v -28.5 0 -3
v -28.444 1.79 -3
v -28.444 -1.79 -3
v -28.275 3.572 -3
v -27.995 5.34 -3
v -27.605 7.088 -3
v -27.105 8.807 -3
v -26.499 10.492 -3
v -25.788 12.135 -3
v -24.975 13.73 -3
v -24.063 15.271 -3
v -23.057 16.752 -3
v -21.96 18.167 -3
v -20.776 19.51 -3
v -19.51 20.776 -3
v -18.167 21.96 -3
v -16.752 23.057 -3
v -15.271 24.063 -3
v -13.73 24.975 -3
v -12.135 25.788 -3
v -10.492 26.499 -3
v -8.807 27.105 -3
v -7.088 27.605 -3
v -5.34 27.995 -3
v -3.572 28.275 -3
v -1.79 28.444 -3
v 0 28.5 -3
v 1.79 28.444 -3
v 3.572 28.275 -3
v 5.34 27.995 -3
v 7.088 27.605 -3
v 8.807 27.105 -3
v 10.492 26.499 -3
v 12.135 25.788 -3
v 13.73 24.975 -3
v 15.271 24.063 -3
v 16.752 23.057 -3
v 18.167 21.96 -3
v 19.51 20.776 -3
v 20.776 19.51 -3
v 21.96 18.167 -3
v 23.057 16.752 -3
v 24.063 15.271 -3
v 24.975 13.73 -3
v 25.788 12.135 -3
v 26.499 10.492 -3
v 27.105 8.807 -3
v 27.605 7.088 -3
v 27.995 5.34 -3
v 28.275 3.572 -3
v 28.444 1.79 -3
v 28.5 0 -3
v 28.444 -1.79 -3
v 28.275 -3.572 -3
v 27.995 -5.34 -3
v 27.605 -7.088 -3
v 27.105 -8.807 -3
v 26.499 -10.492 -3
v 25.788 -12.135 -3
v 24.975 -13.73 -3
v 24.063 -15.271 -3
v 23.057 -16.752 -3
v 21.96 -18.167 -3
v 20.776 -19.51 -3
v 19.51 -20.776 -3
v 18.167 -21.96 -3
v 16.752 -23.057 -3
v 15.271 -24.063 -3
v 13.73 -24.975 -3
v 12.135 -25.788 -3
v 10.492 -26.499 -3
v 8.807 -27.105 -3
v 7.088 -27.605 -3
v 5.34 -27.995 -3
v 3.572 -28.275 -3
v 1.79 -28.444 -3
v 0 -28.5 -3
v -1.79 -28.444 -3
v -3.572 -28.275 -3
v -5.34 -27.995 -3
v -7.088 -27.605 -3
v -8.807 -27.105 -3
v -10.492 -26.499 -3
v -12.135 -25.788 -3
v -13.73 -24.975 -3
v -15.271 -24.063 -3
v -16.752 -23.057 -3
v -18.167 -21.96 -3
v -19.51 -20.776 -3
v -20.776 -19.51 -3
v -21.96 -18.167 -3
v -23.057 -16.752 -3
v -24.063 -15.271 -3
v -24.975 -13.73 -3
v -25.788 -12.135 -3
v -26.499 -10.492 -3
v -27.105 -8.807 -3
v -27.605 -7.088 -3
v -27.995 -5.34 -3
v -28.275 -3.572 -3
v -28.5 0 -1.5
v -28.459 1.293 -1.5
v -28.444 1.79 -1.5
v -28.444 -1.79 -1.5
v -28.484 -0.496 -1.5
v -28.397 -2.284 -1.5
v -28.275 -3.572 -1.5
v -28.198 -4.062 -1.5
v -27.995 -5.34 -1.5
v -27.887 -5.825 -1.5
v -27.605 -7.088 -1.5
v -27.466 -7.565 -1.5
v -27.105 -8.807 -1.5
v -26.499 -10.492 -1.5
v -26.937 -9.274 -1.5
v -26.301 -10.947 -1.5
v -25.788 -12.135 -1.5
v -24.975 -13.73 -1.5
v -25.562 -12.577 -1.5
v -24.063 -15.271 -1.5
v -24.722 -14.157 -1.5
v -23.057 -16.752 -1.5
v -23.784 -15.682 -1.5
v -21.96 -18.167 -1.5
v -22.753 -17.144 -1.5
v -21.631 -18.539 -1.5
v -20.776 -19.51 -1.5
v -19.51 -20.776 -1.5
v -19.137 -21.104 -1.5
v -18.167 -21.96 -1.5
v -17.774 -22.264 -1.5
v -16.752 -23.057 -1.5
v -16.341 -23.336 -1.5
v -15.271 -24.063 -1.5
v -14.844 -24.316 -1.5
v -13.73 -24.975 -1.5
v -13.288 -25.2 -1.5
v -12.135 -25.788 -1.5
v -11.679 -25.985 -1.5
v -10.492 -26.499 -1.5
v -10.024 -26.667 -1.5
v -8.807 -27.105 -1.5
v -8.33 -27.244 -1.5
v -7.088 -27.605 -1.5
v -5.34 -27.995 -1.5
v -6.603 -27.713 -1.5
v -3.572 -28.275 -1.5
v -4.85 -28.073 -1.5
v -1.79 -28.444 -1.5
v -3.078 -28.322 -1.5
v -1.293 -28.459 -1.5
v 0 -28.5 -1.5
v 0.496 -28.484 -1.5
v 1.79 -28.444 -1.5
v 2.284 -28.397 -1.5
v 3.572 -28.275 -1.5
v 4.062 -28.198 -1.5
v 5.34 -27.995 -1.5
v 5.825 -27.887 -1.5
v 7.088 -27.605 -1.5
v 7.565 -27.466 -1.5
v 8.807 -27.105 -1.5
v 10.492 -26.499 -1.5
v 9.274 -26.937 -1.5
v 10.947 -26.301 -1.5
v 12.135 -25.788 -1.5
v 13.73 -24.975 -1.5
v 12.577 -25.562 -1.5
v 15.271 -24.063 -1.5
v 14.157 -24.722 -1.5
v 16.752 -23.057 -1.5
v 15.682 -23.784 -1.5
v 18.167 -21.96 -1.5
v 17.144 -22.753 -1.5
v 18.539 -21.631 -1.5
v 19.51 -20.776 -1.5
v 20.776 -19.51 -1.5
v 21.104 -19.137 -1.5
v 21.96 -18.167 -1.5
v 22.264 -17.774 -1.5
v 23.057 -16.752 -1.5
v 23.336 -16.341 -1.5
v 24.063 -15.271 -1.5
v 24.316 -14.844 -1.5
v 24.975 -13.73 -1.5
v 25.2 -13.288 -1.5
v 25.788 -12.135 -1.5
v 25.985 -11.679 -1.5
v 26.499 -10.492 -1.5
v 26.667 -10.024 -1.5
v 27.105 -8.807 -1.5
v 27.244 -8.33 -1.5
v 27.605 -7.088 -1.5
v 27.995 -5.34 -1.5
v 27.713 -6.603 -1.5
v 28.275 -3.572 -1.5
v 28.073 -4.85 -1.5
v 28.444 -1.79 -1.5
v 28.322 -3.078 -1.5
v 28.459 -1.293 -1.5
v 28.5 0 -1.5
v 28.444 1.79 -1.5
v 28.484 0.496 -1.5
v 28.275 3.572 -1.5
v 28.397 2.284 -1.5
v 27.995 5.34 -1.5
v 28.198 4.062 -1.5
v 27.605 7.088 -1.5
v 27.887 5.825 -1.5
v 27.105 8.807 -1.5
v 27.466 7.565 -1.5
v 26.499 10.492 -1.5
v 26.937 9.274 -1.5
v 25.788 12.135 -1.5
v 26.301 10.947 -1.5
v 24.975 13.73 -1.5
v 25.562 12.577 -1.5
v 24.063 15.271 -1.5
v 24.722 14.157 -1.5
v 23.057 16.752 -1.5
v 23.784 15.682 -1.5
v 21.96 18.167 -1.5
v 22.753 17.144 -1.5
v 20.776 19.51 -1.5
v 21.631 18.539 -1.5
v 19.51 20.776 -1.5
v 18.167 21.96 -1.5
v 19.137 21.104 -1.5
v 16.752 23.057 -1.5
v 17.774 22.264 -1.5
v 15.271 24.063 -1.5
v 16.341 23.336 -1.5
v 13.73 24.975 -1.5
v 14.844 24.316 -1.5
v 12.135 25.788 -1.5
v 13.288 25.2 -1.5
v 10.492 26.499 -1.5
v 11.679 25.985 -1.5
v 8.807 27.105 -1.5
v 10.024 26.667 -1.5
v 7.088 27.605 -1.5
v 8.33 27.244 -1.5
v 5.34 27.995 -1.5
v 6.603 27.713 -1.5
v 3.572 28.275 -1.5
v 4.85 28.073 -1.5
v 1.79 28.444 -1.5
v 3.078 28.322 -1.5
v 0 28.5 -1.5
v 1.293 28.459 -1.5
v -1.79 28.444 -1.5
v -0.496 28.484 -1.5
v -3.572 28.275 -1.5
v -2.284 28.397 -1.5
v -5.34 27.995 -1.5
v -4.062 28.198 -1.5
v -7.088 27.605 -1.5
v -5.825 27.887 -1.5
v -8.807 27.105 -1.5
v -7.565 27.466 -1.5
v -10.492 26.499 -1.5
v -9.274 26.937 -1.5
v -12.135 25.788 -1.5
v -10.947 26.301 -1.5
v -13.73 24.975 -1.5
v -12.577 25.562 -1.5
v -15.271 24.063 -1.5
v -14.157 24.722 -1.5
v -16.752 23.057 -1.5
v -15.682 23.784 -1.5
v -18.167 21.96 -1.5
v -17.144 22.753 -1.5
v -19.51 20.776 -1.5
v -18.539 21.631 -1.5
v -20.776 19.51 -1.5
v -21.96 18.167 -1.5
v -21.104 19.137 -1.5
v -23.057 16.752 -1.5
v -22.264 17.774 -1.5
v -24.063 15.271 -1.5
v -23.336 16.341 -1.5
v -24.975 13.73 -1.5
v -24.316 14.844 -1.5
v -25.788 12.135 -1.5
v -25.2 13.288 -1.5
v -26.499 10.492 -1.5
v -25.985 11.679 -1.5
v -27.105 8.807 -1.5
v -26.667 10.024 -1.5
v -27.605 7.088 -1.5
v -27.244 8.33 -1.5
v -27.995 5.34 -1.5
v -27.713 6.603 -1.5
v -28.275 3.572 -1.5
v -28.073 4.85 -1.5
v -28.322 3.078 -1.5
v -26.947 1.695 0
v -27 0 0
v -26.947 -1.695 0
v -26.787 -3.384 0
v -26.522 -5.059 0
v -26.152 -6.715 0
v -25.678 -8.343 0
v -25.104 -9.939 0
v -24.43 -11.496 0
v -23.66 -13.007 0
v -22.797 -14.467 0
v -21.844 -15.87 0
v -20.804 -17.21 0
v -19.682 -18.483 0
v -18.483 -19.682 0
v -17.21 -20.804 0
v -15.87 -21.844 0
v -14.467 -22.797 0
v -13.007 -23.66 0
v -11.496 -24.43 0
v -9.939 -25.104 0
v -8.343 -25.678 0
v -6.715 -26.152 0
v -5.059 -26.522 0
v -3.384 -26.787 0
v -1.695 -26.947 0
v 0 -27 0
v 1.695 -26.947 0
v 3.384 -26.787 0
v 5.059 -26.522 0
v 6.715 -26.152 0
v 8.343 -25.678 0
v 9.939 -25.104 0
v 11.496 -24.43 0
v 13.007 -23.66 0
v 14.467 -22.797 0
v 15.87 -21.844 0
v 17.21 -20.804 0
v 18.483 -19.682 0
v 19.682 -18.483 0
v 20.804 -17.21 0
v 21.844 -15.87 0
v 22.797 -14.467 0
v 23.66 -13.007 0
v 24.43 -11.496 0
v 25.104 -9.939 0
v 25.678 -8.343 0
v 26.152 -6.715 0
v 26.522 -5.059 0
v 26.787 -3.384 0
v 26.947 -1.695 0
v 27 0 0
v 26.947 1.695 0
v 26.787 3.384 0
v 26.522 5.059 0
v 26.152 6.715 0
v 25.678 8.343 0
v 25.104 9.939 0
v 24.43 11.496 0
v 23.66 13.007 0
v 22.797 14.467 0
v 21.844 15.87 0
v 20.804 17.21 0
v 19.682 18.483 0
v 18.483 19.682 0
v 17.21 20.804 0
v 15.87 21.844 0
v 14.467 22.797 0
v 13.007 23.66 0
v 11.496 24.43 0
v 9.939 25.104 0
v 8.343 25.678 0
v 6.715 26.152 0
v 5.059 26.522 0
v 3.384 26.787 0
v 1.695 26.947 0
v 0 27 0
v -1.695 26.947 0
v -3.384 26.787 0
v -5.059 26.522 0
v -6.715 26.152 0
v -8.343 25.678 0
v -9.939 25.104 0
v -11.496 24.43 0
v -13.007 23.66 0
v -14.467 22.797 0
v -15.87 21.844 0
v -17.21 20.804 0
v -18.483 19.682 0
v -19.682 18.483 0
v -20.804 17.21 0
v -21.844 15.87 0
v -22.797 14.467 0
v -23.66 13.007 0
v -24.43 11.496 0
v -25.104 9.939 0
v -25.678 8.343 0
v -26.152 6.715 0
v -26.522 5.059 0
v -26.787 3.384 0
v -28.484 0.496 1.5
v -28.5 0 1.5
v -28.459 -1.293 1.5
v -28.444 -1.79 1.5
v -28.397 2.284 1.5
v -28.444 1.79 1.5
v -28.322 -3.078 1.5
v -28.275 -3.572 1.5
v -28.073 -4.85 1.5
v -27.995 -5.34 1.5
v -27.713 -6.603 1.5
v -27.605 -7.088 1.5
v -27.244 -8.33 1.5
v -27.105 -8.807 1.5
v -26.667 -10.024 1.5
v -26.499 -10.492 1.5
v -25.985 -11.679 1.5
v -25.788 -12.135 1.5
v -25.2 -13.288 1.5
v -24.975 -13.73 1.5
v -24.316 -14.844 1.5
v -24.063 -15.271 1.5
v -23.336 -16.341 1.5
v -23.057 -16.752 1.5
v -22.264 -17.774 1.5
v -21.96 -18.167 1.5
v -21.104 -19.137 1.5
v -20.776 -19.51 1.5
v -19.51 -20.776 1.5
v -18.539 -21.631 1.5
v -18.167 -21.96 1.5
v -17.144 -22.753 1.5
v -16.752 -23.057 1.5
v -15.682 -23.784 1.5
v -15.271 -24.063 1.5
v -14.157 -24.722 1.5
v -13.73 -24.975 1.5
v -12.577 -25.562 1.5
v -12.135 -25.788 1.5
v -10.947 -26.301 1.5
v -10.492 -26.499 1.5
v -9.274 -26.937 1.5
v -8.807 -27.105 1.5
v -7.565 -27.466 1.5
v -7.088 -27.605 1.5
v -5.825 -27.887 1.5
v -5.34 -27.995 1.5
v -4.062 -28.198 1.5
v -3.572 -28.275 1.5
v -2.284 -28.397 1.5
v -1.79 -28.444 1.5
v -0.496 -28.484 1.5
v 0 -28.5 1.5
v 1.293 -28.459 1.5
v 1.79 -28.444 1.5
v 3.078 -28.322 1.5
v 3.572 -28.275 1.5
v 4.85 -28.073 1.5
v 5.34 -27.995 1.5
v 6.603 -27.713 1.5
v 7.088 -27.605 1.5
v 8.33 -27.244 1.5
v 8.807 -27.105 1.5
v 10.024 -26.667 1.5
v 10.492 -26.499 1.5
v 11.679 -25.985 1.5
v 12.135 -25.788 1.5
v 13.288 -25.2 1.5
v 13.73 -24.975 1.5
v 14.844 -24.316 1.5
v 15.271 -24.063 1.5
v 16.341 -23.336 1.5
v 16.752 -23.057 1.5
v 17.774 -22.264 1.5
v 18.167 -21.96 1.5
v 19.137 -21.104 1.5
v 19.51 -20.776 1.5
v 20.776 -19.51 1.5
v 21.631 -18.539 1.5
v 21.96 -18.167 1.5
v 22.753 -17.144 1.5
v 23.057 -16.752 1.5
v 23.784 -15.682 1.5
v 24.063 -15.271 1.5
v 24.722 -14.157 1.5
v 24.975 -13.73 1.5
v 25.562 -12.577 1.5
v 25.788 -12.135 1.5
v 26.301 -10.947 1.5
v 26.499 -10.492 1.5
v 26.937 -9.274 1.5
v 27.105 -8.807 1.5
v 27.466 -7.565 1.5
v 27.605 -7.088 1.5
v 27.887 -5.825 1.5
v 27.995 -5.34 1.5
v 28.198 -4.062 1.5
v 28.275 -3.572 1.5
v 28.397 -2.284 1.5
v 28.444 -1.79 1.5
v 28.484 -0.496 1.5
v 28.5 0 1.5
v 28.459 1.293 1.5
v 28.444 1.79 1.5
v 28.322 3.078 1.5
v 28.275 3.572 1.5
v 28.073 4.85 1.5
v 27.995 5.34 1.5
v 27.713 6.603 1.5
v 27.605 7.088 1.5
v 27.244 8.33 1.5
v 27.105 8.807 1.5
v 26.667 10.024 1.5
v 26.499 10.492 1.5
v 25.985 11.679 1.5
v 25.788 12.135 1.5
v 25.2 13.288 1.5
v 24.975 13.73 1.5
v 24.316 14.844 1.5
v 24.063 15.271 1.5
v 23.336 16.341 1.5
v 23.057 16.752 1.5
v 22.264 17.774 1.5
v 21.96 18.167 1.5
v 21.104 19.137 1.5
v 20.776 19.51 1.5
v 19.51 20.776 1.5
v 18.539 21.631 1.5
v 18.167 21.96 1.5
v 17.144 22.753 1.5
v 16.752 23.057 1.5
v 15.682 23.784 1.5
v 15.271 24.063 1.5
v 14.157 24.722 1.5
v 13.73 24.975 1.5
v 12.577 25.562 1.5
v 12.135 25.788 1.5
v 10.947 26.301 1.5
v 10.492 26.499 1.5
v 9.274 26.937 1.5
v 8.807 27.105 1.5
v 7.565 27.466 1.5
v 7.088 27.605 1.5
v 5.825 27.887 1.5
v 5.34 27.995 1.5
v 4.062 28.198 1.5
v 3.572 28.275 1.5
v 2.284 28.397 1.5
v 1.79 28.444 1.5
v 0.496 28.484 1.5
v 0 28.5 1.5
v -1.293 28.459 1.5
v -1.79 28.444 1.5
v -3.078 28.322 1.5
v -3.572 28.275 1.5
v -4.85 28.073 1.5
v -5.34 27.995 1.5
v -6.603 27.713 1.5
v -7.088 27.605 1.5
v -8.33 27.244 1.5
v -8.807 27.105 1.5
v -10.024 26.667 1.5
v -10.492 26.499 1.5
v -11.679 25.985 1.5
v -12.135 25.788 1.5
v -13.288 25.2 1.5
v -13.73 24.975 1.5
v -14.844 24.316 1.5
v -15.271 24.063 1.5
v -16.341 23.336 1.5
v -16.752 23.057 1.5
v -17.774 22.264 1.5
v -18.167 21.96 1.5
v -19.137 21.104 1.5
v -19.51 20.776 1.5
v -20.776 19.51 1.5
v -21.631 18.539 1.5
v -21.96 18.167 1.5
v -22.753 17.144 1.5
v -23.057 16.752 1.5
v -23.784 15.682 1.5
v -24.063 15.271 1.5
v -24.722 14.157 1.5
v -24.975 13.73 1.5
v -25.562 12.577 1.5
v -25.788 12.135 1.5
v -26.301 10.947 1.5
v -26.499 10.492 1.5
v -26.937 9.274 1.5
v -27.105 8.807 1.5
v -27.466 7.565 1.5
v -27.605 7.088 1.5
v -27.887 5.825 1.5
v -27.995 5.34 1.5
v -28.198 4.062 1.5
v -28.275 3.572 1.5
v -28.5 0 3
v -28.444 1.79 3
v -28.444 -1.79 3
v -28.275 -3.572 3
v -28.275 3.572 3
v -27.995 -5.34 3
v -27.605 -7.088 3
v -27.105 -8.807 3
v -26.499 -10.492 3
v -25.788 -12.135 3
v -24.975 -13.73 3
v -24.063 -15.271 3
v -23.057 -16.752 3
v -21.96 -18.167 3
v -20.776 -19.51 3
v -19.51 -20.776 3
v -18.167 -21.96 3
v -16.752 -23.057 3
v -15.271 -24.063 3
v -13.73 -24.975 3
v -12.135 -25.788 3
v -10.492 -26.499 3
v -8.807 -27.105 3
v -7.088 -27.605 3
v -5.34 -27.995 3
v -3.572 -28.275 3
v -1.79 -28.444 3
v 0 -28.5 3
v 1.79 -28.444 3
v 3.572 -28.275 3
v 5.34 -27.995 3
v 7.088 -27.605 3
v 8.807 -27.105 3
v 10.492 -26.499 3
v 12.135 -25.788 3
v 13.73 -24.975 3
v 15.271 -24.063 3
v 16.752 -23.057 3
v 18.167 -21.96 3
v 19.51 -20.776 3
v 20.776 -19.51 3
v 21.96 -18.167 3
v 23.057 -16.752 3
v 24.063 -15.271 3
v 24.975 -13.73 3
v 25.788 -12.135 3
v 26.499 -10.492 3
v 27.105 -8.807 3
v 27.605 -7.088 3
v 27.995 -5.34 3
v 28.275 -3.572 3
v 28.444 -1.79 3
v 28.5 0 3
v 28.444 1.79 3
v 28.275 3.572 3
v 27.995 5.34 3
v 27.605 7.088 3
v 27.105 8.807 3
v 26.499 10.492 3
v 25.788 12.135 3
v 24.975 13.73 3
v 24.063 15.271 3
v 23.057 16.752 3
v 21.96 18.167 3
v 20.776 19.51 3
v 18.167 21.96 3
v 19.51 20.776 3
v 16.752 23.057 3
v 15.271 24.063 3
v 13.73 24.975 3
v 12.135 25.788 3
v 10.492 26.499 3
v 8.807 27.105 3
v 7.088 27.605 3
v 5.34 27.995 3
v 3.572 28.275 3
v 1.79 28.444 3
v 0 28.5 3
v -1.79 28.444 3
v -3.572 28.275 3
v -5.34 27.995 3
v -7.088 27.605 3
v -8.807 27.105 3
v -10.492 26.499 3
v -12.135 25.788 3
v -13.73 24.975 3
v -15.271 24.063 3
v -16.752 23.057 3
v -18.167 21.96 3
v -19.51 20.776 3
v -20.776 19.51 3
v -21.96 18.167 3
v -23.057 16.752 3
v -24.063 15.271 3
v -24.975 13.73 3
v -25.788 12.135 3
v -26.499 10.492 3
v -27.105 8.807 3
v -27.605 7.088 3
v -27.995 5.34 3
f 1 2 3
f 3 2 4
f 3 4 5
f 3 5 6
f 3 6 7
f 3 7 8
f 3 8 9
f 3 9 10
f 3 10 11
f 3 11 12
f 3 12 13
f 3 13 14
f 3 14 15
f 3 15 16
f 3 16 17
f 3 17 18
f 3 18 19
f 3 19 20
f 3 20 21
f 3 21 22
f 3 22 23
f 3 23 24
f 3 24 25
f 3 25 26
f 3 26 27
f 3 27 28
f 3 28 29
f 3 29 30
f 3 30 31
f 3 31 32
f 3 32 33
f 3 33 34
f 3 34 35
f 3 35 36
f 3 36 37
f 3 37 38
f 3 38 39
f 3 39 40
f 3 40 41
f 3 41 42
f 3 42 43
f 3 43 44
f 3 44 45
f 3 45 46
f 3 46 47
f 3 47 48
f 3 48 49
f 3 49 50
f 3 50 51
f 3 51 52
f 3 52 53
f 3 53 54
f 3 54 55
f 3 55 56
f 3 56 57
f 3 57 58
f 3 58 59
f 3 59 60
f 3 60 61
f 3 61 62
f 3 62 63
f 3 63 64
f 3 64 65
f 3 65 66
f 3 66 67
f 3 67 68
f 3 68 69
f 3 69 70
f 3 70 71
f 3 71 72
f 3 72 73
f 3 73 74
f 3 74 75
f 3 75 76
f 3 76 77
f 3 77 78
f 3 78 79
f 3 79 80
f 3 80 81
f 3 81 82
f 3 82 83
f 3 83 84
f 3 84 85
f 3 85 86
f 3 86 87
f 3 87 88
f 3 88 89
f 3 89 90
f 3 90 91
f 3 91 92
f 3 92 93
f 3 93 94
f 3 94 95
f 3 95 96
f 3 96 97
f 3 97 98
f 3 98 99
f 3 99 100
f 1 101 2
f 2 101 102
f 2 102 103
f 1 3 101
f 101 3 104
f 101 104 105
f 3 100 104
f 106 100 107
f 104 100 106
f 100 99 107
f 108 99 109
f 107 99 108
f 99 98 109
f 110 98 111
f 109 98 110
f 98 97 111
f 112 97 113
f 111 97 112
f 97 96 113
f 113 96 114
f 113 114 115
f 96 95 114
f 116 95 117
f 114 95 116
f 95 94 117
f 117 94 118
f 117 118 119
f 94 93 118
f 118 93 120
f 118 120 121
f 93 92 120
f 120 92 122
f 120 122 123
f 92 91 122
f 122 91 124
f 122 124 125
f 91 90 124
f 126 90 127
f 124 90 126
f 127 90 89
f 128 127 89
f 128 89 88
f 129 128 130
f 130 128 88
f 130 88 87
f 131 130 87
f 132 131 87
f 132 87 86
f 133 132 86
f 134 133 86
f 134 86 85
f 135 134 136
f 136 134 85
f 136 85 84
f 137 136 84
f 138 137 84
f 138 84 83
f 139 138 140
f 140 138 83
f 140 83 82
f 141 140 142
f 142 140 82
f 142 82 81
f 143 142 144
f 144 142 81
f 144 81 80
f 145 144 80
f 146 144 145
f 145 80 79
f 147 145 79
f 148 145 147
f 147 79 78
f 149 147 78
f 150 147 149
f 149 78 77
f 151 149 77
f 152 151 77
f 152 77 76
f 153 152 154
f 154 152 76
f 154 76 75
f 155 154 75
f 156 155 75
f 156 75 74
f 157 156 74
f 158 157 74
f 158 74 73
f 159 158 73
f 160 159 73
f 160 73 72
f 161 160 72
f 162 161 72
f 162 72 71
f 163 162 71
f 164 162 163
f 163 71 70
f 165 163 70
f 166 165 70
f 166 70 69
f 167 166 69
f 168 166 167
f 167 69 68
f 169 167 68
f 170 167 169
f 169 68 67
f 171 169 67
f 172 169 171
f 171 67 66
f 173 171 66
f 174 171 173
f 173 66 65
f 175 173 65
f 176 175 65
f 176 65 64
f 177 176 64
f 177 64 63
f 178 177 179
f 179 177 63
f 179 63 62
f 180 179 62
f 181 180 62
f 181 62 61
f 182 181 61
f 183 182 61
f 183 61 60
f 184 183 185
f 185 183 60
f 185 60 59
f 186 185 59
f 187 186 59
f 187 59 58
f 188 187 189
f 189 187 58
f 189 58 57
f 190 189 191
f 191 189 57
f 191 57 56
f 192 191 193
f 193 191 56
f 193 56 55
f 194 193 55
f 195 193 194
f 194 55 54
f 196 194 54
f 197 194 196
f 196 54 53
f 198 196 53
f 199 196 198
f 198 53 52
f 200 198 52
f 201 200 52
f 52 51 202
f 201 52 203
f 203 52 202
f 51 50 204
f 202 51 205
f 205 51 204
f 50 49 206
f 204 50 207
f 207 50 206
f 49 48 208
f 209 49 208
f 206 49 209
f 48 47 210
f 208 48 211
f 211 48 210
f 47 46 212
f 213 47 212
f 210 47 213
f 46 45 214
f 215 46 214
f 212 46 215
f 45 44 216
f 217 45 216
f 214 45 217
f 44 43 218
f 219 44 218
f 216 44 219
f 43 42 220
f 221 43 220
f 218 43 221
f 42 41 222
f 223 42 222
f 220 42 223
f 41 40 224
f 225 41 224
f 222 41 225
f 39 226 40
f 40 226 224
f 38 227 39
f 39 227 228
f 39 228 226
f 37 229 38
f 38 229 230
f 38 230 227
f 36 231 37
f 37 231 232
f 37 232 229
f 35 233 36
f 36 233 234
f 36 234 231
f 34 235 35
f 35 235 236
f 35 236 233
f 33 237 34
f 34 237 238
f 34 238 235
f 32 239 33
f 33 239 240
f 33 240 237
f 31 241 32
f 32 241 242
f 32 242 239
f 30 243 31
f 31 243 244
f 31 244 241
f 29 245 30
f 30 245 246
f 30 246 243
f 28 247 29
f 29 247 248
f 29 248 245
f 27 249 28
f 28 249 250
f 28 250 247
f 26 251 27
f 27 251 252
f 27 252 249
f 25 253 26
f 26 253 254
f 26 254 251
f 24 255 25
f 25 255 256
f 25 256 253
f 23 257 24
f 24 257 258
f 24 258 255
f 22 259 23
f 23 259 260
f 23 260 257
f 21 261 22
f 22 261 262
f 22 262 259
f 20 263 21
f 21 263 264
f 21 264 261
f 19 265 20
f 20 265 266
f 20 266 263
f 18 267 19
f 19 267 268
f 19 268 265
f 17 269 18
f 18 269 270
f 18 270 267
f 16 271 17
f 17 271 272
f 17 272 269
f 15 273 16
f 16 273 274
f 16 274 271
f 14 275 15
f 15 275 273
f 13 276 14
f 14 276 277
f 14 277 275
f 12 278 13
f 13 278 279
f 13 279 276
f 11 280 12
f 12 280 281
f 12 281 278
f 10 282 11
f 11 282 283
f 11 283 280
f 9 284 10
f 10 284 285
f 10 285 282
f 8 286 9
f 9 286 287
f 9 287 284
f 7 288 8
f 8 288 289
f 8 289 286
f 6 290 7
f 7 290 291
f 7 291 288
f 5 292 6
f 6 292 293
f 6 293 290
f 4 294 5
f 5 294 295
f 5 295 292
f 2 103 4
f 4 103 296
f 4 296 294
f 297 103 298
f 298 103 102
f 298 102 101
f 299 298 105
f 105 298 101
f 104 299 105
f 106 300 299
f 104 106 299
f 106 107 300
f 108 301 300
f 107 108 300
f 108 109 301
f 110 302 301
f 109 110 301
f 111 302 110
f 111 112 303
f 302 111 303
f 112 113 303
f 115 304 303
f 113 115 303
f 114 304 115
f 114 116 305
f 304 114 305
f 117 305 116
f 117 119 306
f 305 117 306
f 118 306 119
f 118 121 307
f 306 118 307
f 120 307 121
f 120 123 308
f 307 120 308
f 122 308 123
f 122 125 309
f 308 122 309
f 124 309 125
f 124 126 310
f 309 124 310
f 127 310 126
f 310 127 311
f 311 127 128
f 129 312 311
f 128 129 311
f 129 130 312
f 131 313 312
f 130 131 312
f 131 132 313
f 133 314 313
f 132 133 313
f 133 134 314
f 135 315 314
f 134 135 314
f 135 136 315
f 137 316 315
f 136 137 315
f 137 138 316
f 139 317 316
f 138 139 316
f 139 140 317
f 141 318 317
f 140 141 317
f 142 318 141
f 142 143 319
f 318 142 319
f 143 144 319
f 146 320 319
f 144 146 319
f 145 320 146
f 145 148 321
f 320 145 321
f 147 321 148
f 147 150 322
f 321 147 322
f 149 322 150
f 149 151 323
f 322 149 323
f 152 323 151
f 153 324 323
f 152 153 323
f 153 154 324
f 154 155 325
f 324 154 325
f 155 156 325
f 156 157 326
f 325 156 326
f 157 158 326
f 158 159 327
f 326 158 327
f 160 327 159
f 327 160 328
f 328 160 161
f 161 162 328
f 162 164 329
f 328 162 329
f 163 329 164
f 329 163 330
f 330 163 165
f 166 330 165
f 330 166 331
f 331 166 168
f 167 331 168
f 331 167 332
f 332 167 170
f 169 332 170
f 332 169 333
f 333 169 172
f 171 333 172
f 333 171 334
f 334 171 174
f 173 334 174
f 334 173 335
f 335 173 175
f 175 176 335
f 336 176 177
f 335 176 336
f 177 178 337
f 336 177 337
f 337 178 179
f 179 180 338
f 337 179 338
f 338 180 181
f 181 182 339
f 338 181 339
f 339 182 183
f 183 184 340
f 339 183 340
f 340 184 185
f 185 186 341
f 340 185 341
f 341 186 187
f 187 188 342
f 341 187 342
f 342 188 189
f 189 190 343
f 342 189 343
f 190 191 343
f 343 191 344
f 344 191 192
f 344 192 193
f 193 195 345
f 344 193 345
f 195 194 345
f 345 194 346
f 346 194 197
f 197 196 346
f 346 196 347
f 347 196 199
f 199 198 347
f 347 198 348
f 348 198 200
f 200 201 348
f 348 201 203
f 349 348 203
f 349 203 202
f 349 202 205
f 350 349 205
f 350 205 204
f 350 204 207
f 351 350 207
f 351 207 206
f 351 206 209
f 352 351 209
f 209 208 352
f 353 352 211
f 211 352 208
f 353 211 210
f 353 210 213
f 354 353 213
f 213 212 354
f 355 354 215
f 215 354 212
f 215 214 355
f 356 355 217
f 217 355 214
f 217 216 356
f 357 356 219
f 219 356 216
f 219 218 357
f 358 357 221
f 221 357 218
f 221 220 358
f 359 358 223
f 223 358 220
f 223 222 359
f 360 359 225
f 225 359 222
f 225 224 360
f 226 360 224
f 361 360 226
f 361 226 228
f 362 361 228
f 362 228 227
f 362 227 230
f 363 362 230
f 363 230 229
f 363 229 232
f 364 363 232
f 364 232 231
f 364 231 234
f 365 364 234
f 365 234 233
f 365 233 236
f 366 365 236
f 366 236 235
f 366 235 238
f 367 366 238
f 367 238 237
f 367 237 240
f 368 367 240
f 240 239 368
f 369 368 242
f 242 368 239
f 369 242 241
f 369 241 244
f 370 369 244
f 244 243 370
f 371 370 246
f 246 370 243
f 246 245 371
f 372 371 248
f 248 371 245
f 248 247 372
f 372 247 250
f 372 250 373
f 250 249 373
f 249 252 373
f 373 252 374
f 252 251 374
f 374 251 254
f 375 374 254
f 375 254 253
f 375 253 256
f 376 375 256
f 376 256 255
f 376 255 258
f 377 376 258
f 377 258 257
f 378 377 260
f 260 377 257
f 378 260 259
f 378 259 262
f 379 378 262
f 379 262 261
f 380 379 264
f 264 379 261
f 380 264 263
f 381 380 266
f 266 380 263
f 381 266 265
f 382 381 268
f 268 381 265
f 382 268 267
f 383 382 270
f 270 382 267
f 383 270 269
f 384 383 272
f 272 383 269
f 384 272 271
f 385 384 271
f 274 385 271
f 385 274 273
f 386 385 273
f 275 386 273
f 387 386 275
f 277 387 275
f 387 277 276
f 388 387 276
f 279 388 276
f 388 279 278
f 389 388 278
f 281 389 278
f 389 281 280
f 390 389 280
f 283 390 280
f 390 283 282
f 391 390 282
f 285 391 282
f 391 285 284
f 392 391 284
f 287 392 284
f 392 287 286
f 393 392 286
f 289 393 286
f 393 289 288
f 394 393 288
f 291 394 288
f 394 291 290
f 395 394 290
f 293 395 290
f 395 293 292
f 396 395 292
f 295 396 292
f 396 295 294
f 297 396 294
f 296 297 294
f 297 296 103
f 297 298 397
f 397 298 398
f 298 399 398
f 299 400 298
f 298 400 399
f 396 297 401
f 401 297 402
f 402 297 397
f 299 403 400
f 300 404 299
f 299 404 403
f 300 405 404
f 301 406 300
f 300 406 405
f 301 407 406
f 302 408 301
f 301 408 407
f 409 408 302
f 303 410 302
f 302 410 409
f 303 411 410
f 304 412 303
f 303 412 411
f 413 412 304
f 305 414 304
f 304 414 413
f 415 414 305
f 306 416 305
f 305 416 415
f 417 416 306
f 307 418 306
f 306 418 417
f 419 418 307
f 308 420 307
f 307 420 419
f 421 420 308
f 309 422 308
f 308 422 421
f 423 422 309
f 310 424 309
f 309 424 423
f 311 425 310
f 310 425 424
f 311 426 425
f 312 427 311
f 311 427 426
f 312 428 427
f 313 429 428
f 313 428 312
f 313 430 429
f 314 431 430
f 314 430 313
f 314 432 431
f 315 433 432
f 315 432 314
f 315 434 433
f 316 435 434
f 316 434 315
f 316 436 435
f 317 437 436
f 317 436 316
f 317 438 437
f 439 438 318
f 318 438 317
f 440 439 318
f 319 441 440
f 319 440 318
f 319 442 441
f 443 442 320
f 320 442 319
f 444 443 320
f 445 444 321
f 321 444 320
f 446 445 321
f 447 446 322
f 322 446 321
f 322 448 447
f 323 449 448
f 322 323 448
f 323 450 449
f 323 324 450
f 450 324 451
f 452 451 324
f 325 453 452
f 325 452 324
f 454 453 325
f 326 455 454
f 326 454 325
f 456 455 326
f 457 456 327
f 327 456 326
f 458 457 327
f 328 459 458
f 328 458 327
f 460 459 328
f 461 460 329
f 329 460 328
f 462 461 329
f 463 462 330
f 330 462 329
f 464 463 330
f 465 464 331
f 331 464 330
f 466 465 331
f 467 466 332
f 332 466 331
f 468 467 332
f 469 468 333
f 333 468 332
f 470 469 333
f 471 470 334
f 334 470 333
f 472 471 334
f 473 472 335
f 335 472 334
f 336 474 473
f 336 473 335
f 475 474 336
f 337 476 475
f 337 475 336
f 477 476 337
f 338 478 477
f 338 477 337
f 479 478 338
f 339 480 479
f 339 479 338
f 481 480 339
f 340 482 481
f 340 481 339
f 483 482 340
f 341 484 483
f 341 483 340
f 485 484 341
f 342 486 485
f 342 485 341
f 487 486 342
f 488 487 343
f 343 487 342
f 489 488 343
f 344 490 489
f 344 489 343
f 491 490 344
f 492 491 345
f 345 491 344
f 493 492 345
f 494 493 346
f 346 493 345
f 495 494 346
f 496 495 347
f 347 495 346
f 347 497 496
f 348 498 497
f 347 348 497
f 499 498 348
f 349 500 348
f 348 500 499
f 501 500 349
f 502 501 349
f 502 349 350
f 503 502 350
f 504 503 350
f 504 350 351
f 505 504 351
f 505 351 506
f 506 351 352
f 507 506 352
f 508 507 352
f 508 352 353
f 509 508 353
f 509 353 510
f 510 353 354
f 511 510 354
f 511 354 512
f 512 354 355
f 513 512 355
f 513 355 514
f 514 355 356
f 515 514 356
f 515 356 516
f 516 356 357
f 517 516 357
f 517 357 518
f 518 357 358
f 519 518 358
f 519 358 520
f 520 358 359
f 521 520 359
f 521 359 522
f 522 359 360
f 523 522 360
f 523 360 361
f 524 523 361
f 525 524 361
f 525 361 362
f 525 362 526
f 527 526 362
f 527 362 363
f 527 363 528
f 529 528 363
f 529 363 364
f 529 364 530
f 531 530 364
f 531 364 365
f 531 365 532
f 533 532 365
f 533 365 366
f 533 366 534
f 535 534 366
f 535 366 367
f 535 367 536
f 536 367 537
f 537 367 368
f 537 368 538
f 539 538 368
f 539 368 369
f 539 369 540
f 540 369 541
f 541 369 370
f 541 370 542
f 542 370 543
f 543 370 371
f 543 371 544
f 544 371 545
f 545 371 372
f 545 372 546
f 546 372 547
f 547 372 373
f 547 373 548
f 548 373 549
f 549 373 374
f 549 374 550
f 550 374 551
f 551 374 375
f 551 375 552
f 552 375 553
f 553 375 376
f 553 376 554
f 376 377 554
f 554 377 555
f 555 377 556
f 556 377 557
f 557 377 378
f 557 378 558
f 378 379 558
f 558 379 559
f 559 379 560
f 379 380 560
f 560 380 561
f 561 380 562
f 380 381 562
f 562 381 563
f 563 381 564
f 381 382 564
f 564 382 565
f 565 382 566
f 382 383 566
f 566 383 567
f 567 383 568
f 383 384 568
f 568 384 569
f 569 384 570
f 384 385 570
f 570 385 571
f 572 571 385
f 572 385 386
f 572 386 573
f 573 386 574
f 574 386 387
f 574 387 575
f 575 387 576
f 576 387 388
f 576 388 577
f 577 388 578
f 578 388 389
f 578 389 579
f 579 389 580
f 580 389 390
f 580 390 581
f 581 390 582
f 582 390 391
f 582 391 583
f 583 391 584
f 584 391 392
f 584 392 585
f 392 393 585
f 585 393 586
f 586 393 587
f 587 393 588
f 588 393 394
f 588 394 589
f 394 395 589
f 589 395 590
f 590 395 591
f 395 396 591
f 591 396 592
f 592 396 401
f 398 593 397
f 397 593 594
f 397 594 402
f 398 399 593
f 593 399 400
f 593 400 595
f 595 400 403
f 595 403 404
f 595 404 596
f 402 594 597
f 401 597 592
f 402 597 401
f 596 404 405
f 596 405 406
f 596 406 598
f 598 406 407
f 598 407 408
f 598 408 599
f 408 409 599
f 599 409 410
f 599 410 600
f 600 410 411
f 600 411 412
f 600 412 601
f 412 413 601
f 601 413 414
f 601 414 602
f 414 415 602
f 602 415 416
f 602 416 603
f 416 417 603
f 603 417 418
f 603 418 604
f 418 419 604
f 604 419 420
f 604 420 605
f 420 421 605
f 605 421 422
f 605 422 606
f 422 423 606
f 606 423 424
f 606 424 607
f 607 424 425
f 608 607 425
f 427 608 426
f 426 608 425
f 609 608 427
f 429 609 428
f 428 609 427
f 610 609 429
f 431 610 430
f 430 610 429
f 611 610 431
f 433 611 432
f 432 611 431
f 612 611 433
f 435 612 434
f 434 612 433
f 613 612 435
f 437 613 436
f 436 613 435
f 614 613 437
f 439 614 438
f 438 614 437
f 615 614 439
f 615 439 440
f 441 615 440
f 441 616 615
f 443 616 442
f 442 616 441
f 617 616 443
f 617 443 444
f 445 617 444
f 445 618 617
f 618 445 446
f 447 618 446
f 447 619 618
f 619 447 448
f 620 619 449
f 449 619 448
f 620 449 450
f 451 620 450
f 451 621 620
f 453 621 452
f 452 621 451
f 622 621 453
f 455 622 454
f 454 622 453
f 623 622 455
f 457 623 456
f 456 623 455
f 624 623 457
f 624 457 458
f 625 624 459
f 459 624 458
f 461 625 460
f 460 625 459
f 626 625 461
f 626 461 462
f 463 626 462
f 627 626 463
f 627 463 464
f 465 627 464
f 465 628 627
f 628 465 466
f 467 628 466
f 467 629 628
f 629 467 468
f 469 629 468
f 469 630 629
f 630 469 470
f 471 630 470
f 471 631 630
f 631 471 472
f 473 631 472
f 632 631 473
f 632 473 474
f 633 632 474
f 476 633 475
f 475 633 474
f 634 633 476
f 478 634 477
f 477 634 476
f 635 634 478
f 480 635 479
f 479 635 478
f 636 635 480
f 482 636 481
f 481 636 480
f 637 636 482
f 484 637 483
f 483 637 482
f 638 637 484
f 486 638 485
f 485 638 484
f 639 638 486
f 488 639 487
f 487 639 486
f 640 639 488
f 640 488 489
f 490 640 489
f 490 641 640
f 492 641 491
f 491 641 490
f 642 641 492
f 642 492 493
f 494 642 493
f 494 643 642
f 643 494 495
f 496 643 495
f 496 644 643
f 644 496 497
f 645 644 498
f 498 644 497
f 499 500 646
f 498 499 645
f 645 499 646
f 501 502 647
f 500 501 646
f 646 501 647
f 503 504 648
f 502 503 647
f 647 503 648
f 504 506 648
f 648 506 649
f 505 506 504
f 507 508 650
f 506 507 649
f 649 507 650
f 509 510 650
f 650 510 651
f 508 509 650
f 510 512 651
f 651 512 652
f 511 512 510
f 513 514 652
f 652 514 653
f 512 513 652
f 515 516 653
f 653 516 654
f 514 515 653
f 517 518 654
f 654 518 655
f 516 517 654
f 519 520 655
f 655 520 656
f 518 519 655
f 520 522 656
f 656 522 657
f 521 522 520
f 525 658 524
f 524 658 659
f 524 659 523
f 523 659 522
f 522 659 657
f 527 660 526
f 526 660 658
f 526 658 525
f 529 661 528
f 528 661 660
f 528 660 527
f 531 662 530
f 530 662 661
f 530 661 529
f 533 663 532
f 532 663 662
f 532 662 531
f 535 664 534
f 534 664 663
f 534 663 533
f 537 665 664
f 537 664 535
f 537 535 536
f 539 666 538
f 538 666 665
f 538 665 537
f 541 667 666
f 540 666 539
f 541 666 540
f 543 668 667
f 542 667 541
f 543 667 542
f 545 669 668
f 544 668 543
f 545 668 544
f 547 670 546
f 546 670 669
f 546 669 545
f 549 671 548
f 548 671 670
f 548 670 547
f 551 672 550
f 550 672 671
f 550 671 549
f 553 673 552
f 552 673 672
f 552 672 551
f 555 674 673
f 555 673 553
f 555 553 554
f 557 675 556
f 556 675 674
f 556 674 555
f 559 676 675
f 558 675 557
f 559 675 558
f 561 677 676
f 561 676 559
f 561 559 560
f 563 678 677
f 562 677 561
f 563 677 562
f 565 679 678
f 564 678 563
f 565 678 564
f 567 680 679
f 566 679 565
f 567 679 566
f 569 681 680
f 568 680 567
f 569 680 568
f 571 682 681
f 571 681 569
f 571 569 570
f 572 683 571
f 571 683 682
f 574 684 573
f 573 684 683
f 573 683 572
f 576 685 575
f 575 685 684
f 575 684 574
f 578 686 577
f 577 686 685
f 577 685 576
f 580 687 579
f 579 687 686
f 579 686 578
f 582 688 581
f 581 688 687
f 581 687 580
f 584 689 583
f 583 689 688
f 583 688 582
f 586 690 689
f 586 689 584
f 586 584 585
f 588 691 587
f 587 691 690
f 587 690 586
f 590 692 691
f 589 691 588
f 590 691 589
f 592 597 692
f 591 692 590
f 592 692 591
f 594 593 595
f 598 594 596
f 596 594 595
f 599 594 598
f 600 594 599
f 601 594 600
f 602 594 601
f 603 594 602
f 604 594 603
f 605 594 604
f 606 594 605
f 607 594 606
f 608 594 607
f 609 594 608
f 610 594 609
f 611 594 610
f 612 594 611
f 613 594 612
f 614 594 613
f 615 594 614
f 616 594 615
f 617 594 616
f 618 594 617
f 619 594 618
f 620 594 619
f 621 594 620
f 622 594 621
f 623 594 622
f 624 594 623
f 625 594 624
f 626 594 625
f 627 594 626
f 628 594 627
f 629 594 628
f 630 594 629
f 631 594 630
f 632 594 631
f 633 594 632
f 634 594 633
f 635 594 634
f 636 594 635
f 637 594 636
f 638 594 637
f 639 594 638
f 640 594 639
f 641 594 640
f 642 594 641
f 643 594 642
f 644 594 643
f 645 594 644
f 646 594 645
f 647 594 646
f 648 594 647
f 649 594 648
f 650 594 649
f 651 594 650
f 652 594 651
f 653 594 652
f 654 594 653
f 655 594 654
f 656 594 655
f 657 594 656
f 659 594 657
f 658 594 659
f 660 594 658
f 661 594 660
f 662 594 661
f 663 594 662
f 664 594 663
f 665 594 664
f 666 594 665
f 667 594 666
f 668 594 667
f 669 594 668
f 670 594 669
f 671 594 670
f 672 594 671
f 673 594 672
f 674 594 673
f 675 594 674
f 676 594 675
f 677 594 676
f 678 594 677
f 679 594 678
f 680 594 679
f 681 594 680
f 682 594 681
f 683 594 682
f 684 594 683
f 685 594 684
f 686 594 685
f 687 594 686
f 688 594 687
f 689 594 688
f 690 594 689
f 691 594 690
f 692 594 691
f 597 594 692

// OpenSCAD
//-------------------------------------------------------------
//-- Servo wheel
//-- (c) Juan Gonzalez (obijuan) juan@iearobotics.com
//-- March-2012
//-------------------------------------------------------------
//-- Wheel for mobile robots, drived by Futaba 3003 servos
//-------------------------------------------------------------

//-- Wheel parameters
wheel_or_idiam = 51;                   //-- O-ring inner diameter
wheel_or_diam = 3;                     //-- O-ring section diameter
wheel_height = 2*wheel_or_diam+0;     //-- Wheel height: change the 0 for 
                                      //-- other value (0 equals minimun height)
//-- Parameters common to all horns
horn_drill_diam = 0;
horn_height = 15;        //-- Total height: shaft + plate
horn_plate_height =2;  //-- plate height

//-- Futaba 3003 servo rounded horn parameters
rh_diam1 = 8.5;  //-- Rounded horn small diameter
rh_diam2 = 20.5; //-- Rounded horn big diameter
rounded_horn_drill_distance = 7.3;

//-- Futaba 3003 horn drills


//-- Futaba 3003 4-arm horn parameters
a4h_end_diam = 5;
a4h_center_diam = 10;
a4h_arm_length = 15;
a4h_drill_distance = 13.3;


//-- Futaba 3003 6-arm horn parameters
a6h_end_diam = 5;
a6h_center_diam = 10;
a6h_arm_length=10;
a6h_arm_base_diam=7.5;
a6h_drill_distance = 10.9;


//-------------------------------------------------------
//--- Parameters:
//-- or_idiam: O-ring inner diameter
//-- or_diam: O-ring section diameter
//-- h: Height of the wheel
//--
//--  Module for generating a raw wheel, with no drills
//--  and no servo horn
//-------------------------------------------------------
module raw_wheel(or_idiam=50, or_diam=3, h=6)
{
   //-- Wheel parameters
   r = or_idiam/2 + or_diam;   //-- Radius

  //-- Temporal points
  l = or_diam*sqrt(2)/2;

  difference() {
    //-- Body of the wheel
    cylinder (r=r, h=h, $fn=100,center=true);

    //--  wheel's inner section
    rotate_extrude($fn=100)
      translate([r-or_diam/2,0,0])
      polygon( [ [0,0],[l,l],[l,-l] ] , [ [0,1,2] ]);
  }
}

//--------------------------------------------------------------
//-- Generic module for the horn's drills
//-- Parameters:
//--  d = drill's radial distance (from the horn's center)
//--  n = number of drills
//--  h = wheel height
//--------------------------------------------------------------
module horn_drills(d,n,h)
{
  union() {
    for ( i = [0 : n-1] ) {
        rotate([0,0,i*360/n])
        translate([0,d,0])
        cylinder(r=horn_drill_diam/2, h=h+10,center=true, $fn=6);  
      }
  }
}

//-----------------------------------------
//-- Futaba 3003 horn4 arm
//-- This module is just one arm
//-----------------------------------------
module horn4_arm(h=5)
{
  translate([0,a4h_arm_length-a4h_end_diam/2,0])
  //-- The arm consist of the perimeter of a cylinder and a cube
  hull() {
    cylinder(r=a4h_end_diam/2, h=h, center=true, $fn=20);
    translate([0,1-a4h_arm_length+a4h_end_diam/2,0])
      cube([a4h_center_diam,2,h],center=true);
  }
}

//-----------------------------------------
//-- Futaba 3003 horn6 arm
//-- This module is just one arm
//-----------------------------------------
module horn6_arm(h=5)
{
  translate([0,a6h_arm_length-a6h_end_diam/2,0])
  //-- The arm consist of the perimeter of a cylinder and a cube
  hull() {
    cylinder(r=a6h_end_diam/2, h=h, center=true, $fn=20);
    translate([0,-a6h_arm_length+a6h_end_diam/2,0])
    cube([a6h_arm_base_diam,0.1,h],center=true);
  }
}


//-------------------------------------------
//-- Futaba 3003 4-arm horn
//-------------------------------------------
module horn4(h=5)
{
  union() {
    //-- Center part (is a square)
    cube([a4h_center_diam+0.2,a4h_center_diam+0.2,h],center=true);

    //-- Place the 4 arms in every side of the cube
    for ( i = [0 : 3] ) {
      rotate( [0,0,i*90])
      translate([0, a4h_center_diam/2, 0])
      horn4_arm(h);
    }
  }

}

//-------------------------------------------
//-- Futaba 3003 6-arm horn
//-------------------------------------------
module horn6(h=5)
{
  union() {
    //-- The center part is a cylinder
    cylinder(r=15/2,h=h,center=true);

    //-- Place the 6 arms rotated 60 degrees
    for ( i = [0 : 5] ) {
      rotate( [0,0,i*60])
      translate([0, 15/2*cos(30), 0])
      horn6_arm(h);
    }
  }
}


//-------------------------------------------------------
//--  A Wheel for the futaba 3003 rounded horns
//--------------------------------------------------------
module Servo_wheel_rounded_horn()
{
  difference() {
      raw_wheel(or_idiam=wheel_or_idiam, or_diam=wheel_or_diam, h=wheel_height);

      //-- Inner drill
      cylinder(center=true, h=2*wheel_height + 10, r=rh_diam1/2+0.2,$fn=100);

      //-- Carved circle for the Futaba rounded horn
      translate([0,0,-wheel_height/2+horn_height-horn_plate_height]) 
       cylinder(r=rh_diam2/2+0.25, h=2*wheel_height+10,$fn=30);

      //-- small drills for the rounded horn
      horn_drills(d=rounded_horn_drill_distance, n=4, h=wheel_height);
  }

}

//-------------------------------------------------------
//--  A Wheel for the futaba 3003 4-arm horns
//--------------------------------------------------------
module Servo_wheel_4_arm_horn()
{
  difference() {
      raw_wheel(or_idiam=wheel_or_idiam, or_diam=wheel_or_diam, h=wheel_height);

      //-- Inner drill
      cylinder(center=true, h=2*wheel_height + 10, r=a4h_center_diam/2,$fn=20);

      //-- substract the 4-arm servo horn
      translate([0,0,horn_height-horn_plate_height])
        horn4(h=wheel_height);

      //-- Horn drills
      horn_drills(d=a4h_drill_distance, n=4, h=wheel_height);

  }
}

//-------------------------------------------------------
//--  A Wheel for the futaba 3003 6-arm horns
//--------------------------------------------------------
module Servo_wheel_6_arm_horn()
{
  difference() {
      raw_wheel(or_idiam=wheel_or_idiam, or_diam=wheel_or_diam, h=wheel_height);

       //-- Inner drill
      cylinder(center=true, h=2*wheel_height + 10, r=a6h_center_diam/2,$fn=20);

      //-- substract the 6-arm horn
      translate([0,0,horn_height-horn_plate_height])
      horn6(h=wheel_height);

      //-- Horn drills
      horn_drills(d=a6h_drill_distance, n=6, h=wheel_height);
  }
}


//-- Test!
Servo_wheel_rounded_horn();
//translate([wheel_or_idiam+10,0,0]) Servo_wheel_4_arm_horn();
//translate([-wheel_or_idiam-10,0,0]) Servo_wheel_6_arm_horn();


cylinder(r=5, h=6, center=true, $fn=500);
